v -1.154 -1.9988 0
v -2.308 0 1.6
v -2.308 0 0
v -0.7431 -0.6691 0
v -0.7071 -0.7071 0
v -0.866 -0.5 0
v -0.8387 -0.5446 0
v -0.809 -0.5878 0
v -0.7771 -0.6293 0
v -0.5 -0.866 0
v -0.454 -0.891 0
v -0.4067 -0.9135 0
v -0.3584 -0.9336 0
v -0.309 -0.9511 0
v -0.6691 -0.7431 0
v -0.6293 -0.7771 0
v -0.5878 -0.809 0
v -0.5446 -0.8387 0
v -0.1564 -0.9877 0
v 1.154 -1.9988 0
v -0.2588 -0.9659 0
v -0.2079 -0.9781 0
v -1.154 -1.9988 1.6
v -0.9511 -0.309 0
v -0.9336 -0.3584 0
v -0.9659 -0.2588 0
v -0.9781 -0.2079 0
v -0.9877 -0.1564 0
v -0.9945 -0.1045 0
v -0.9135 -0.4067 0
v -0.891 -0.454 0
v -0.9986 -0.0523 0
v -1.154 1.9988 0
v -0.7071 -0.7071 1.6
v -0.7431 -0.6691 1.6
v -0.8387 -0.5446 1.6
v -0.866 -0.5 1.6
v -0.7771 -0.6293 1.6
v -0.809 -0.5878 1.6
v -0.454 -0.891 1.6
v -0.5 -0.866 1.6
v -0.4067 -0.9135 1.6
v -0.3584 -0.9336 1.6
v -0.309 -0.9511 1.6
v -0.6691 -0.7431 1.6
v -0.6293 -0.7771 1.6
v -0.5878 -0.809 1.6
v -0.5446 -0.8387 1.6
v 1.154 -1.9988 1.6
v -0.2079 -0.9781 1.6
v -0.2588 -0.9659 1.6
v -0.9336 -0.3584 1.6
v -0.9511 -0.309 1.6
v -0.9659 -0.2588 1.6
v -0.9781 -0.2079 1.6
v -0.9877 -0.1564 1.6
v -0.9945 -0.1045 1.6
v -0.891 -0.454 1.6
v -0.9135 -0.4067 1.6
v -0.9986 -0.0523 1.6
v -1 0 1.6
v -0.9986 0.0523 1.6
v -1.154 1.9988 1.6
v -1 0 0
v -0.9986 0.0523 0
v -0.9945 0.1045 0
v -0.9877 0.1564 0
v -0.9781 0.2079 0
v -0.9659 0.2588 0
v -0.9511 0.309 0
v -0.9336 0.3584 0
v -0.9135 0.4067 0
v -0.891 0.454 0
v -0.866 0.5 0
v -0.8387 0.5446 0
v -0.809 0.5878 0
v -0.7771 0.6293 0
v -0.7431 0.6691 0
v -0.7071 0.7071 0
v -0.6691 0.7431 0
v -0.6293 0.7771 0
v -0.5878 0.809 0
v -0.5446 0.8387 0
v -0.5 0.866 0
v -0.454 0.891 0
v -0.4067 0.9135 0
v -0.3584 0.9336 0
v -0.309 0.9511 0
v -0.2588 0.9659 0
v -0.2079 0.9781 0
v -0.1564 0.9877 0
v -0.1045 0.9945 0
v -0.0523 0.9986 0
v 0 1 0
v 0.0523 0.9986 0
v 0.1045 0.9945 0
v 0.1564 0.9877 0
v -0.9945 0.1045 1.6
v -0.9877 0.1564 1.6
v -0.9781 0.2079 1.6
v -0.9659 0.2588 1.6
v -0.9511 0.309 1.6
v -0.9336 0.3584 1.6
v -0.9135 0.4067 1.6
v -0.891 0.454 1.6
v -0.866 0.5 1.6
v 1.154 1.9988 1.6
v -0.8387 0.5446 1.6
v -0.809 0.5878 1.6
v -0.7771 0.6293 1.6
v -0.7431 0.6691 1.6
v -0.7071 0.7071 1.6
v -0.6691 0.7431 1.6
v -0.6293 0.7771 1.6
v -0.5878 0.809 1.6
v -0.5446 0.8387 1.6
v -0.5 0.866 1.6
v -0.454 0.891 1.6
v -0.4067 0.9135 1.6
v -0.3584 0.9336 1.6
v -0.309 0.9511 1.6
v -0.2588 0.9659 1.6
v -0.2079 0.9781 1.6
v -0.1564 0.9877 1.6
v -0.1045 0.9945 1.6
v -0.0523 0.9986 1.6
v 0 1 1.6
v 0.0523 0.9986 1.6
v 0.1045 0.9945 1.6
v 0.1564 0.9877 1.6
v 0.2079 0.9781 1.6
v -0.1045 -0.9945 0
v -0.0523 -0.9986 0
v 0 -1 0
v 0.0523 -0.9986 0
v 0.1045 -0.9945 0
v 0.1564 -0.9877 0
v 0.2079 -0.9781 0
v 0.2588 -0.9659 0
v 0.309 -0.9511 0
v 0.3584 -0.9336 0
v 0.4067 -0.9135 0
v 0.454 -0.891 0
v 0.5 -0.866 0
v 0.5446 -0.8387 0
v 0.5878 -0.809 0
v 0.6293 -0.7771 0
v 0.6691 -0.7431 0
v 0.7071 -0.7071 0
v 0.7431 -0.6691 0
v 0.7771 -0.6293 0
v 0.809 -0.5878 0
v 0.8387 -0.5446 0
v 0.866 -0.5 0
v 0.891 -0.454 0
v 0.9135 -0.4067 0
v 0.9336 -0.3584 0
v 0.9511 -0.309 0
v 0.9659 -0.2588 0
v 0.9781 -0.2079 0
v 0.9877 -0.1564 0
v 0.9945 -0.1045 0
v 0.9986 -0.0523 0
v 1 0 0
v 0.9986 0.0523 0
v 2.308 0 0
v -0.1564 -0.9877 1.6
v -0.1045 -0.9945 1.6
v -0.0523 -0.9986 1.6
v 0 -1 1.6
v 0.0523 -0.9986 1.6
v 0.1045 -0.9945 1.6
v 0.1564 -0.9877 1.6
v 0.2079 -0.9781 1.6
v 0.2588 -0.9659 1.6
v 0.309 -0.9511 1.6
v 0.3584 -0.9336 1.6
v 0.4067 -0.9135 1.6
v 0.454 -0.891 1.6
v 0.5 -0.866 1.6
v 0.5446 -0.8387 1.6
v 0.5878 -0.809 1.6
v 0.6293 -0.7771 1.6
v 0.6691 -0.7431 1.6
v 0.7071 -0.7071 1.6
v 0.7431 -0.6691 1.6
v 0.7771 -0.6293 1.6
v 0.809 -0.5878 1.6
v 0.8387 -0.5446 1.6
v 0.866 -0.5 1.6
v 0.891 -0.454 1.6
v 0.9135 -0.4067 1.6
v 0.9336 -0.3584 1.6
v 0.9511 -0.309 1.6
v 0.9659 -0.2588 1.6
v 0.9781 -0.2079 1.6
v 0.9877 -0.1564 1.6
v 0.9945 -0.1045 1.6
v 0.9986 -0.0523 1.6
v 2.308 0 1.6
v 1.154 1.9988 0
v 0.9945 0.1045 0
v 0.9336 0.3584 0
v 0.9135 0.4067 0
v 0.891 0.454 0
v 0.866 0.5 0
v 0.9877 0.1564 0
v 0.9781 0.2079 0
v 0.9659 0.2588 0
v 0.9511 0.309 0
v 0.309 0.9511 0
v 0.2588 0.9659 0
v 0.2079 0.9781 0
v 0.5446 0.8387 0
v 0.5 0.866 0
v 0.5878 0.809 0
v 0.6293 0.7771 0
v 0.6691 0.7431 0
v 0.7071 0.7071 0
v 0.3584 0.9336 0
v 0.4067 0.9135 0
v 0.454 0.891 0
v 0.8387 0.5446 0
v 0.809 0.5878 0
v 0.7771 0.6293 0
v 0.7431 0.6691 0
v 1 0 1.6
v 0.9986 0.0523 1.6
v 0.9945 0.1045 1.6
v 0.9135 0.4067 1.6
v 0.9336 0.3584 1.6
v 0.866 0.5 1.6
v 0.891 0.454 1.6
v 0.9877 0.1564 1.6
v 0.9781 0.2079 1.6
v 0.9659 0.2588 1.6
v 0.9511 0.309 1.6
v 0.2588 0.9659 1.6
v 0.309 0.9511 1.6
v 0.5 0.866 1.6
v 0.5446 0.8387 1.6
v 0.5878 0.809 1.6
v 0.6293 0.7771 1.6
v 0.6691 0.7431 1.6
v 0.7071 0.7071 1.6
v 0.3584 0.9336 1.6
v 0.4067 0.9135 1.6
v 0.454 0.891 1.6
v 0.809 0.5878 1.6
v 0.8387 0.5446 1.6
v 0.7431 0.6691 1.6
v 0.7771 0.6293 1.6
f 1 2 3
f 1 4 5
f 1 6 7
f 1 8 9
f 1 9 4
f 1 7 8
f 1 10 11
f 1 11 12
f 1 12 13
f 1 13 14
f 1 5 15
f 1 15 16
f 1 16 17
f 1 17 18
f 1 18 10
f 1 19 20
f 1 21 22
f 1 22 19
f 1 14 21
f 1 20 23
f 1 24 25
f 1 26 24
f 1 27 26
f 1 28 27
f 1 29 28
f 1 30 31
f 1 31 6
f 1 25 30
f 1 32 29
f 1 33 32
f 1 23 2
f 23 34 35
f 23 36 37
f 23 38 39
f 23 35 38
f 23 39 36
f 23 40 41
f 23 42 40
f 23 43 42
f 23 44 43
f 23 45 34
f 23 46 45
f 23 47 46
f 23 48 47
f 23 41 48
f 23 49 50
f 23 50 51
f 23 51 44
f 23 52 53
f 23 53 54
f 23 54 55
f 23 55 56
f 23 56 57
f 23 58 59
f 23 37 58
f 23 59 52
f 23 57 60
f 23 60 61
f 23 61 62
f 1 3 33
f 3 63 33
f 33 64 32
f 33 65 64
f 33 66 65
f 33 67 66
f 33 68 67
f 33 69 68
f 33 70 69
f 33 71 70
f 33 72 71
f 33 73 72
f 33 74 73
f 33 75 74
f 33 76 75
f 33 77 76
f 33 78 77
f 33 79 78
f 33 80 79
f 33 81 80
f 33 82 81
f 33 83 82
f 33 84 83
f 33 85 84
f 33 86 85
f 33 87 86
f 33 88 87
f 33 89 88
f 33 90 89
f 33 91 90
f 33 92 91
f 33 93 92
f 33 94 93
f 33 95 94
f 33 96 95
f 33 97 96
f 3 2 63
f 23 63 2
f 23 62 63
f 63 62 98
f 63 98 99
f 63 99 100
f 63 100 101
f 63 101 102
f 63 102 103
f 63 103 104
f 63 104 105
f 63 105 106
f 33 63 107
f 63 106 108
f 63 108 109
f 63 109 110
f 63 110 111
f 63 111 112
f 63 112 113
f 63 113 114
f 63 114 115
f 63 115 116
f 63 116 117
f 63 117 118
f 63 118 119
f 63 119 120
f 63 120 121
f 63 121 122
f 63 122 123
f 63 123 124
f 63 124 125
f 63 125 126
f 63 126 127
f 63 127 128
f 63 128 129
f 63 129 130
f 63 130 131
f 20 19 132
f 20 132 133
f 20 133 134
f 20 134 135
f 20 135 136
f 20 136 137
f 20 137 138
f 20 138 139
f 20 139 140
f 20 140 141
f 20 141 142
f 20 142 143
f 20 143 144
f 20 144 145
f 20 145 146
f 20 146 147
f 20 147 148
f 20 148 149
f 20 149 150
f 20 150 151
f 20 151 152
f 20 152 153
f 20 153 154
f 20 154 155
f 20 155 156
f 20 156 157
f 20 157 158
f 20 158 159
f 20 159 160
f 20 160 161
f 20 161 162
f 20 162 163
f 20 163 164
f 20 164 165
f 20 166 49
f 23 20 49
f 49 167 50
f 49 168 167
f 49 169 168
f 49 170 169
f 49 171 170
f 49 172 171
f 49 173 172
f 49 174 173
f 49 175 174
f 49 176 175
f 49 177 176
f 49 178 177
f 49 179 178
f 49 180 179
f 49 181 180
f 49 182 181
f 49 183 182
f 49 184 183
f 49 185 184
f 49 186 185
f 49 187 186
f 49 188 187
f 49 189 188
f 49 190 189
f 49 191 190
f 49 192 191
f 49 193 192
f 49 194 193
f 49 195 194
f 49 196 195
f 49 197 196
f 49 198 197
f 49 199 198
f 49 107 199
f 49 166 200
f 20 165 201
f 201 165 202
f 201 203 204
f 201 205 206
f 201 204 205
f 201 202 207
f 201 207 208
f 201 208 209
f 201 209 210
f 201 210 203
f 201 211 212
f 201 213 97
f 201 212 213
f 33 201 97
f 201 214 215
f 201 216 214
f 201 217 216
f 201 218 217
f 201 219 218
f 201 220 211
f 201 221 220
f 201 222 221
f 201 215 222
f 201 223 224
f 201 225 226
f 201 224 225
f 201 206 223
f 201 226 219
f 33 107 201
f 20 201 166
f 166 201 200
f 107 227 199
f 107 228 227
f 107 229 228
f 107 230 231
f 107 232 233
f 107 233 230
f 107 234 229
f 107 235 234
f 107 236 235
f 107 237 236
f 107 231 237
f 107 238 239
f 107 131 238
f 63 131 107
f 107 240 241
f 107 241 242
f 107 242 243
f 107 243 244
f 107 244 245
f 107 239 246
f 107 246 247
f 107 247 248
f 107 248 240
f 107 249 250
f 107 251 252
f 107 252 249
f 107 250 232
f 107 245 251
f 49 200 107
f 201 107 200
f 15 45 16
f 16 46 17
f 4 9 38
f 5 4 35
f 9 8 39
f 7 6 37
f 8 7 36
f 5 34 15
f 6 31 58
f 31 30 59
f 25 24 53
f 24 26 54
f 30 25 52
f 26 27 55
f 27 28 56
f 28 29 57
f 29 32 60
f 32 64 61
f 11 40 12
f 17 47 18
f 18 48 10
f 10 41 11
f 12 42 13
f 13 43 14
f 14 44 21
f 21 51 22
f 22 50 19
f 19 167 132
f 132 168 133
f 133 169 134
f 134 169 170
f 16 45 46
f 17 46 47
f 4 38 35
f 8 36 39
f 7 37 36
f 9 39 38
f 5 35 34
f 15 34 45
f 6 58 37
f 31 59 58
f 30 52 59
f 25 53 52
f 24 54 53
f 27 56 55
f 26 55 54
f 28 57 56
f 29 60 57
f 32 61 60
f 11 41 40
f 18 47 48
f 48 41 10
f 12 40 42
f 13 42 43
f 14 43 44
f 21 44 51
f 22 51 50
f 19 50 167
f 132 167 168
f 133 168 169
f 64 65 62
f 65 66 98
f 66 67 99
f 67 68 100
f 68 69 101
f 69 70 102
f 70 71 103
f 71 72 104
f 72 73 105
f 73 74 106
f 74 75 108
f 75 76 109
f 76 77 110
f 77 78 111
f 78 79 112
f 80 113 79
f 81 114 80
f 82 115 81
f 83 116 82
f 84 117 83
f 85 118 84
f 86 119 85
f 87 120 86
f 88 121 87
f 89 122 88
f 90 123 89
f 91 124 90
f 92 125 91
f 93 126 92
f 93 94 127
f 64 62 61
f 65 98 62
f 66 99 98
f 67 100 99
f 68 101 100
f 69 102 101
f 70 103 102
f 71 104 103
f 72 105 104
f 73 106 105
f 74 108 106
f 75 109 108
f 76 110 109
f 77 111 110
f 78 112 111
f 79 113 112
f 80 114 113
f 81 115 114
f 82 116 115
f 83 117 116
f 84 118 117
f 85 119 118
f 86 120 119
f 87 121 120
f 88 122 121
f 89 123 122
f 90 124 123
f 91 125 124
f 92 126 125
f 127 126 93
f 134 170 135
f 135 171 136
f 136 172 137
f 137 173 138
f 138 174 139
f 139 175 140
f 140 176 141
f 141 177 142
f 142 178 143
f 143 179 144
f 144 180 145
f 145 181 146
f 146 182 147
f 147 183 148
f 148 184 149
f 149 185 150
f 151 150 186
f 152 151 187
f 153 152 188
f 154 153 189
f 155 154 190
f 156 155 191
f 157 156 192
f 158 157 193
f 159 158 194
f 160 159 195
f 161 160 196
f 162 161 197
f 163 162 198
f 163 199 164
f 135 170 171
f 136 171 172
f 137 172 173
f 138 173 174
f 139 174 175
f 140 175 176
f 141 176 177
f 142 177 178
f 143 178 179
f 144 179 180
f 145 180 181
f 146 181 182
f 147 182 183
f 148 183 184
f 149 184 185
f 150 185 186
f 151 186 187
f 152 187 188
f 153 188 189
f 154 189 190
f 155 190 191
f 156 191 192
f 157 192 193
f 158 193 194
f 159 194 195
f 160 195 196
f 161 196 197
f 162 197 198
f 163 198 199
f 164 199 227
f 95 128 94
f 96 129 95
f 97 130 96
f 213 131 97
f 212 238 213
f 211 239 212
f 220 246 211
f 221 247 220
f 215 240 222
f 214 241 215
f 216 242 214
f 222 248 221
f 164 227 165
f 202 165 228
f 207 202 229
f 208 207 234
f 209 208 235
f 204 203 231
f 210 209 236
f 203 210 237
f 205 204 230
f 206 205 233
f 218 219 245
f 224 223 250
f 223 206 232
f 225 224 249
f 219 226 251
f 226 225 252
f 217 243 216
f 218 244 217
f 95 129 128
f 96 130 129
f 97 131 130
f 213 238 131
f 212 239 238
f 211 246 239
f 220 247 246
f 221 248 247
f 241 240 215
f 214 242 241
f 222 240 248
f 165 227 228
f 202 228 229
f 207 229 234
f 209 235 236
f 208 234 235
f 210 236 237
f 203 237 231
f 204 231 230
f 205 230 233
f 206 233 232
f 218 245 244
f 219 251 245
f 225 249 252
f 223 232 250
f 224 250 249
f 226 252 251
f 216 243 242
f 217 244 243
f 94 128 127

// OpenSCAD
// file: C:/od/OneDrive/Documents/ChatGPT/oomlout_oobb_part_motor_gearbox_wave_drive_version_5/parts/oobb_part_motor_gearbox_wave_drive_version_5_12_to_1_reduction/compact_helpers.scad
// Reusable native geometry helpers.
function polar(r,a)=[r*cos(a),r*sin(a)];
function rotate_point(p,a)=[p[0]*cos(a)-p[1]*sin(a),p[0]*sin(a)+p[1]*cos(a)];
function profile_point(t)=let(
    s=sqrt(pow(pitch_radius,2)-pow(eccentricity*sin(cavity_count*t),2)),
    r=eccentricity*cos(cavity_count*t)+s,
    xi=atan2(eccentricity*cavity_count*sin(cavity_count*t),s),
    rr=roller_radius+profile_clearance)
    [r*cos(t)+rr*cos(t+xi),r*sin(t)+rr*sin(t+xi)];
function profile_points(upper=false)=[for(i=[0:cavity_count*profile_samples_per_cavity-1])
    rotate_point(profile_point(360*i/(cavity_count*profile_samples_per_cavity)),0)];
function roller_position(i,a,upper=false)=let(
    t=-a/roller_count+360*i/roller_count,
    rel=t-a-(upper?180:0),
    r=eccentricity*cos(rel)+sqrt(pow(pitch_radius,2)-pow(eccentricity*sin(rel),2))) polar(r,t);
module tube(ro,ri,h) { difference() { cylinder(r=ro,h=h); translate([0,0,-eps]) cylinder(r=ri,h=h+2*eps); } }
module screw_hole(size,h) { scale([1,1,h]) { if(size=="m2") oobb_hole_m2(); if(size=="m3") oobb_hole_m3(); if(size=="m6") oobb_hole_m6(); } }
module socket_recess(size,depth) {
    // OOBB socket head starts at the under-head plane and extends outward.
    scale([1,1,depth/(size=="m3"?3.2:2.2)]) {
        if(size=="m3") oobb_socket_m3(); else oobb_socket_m2();
    }
}
module at_mounts(points) { for(p=points) translate([p[0],p[1],0]) children(); }
module shaft_cut(h,fit=shaft_fit_clearance) {
    linear_extrude(h) intersection() {
        circle(r=input_shaft_diameter/2+fit);
        translate([-10,-10]) square([10+input_shaft_diameter/2-input_shaft_flat_depth+fit,20]);
    }
}
module rounded_rectangle_plate(size=[119,119,3],radius=1.5) {
    hull() for(x=[-1,1],y=[-1,1]) translate([x*(size[0]/2-radius),y*(size[1]/2-radius),0]) cylinder(r=radius,h=size[2]);
}
module grid_cuts(h) {
    // Actual OOBB grid centres: six units are centred on half-pitch offsets.
    for(i=[0:base_width-1],j=[0:base_height-1])
        let(x=(i-(base_width-1)/2)*oobb_grid_pitch,y=(j-(base_height-1)/2)*oobb_grid_pitch)
        if(sqrt(x*x+y*y)>housing_radius+3.5)
            translate([x,y,-eps]) screw_hole("m6",h+2*eps);
}
module wave_generator() {
    render(convexity=20) difference() {
        tube(wave_radius,12.6,wave_height);
        translate([0,0,wave_seat_z]) cylinder(r=13.5+bearing_seat_clearance,h=wave_height);
        translate([0,0,wave_height-wave_cap_depth]) cylinder(r=22.15,h=wave_cap_depth+eps);
        at_mounts(wave_mounts) {
            translate([0,0,-eps]) screw_hole("m3",wave_height+2*eps);
            translate([0,0,wave_nut_z]) scale([1,1,(wave_height-wave_cap_depth-wave_nut_z+eps)/2.7]) oobb_nut_m3();
        }
    }
}
module wave_cap() {
    render(convexity=20) difference() {
        tube(22,12.6,wave_cap_depth);
        at_mounts(wave_mounts) {
            translate([0,0,-eps]) screw_hole("m3",wave_cap_depth+2*eps);
            translate([0,0,wave_cap_depth-wave_head_recess]) socket_recess("m3",wave_head_recess+eps);
        }
    }
}
// file: C:/od/OneDrive/Documents/ChatGPT/oomlout_oobb_part_motor_gearbox_wave_drive_version_5/parts/oobb_part_motor_gearbox_wave_drive_version_5_12_to_1_reduction/oobb_hardware.scad
module oobb_rounded_rectangle_edges(size, radius, radius_top, radius_bottom) {
      rt=radius_top; rb=radius_bottom; depth=size[2]; n=16;
      lower=rb==0 ? [[radius,0]] :
        [for(i=[0:n]) let(a=-90+90*i/n) [radius-rb+rb*cos(a),rb+rb*sin(a)]];
      upper=rt==0 ? [[radius,depth]] :
        [for(i=[0:n]) let(a=90*i/n) [radius-rt+rt*cos(a),depth-rt+rt*sin(a)]];
      hull() for(x=[-size[0]/2+radius,size[0]/2-radius])
        for(y=[-size[1]/2+radius,size[1]/2-radius])
          translate([x,y,0]) rotate_extrude()
            polygon(concat([[0,0]],lower,upper,[[0,depth]]));
    }
// Generated from installed OOBB v5. All primitives use overhang=True.

module oobb_motor_plate_body() {


difference() {
	union() {
		translate(v = [0, 0, 0]) {
			rotate(a = [0, 0, 0]) {
				difference() {
					union() {
						oobb_rounded_rectangle_edges(radius = 1.5, radius_bottom = 1.5, radius_top = 1.5, size = [89.0, 89.0, 4.0]);
					}
					union();
				}
			}
		}
	}
	union();
}

}

module oobb_hole_m2() {


difference() {
	union() {
		cylinder(h = 1, r = 1.35);
	}
	union();
}

}

module oobb_hole_m3() {


difference() {
	union() {
		cylinder(h = 1, r = 1.8);
	}
	union();
}

}

module oobb_hole_m6() {


difference() {
	union() {
		cylinder(h = 1, r = 3.25);
	}
	union();
}

}

module oobb_nut_m2() {


difference() {
	union() {
		translate(v = [0, 0, 0]) {
			rotate(a = [0, 0, 0]) {
				difference() {
					union() {
						linear_extrude(height = 2.2) {
							polygon(points = [[2.4234, 0.0], [1.2117000000000002, 2.0987259635312085], [-1.2116999999999996, 2.0987259635312085], [-2.4234, 2.967809053053696e-16], [-1.211700000000001, -2.098725963531208], [1.2116999999999984, -2.0987259635312094]]);
						}
						translate(v = [-1.25, -2.75, -0.3]) {
							cube(size = [2.5, 5.5, 0.3]);
						}
						translate(v = [-1.25, -1.25, -0.6]) {
							cube(size = [2.5, 2.5, 0.3]);
						}
						translate(v = [-1.25, -2.75, 2.2]) {
							cube(size = [2.5, 5.5, 0.3]);
						}
						translate(v = [-1.25, -1.25, 2.5]) {
							cube(size = [2.5, 2.5, 0.3]);
						}
					}
					union();
				}
			}
		}
	}
	union();
}

}

module oobb_socket_m2() {


difference() {
	union() {
		translate(v = [0, 0, 0]) {
			rotate(a = [0, 0, 0]) {
				difference() {
					union() {
						cylinder(h = 2.2, r = 2.1);
						translate(v = [-1.25, -2.75, -0.3]) {
							cube(size = [2.5, 5.5, 0.3]);
						}
						translate(v = [-1.25, -1.25, -0.6]) {
							cube(size = [2.5, 2.5, 0.3]);
						}
					}
					union();
				}
			}
		}
	}
	union();
}

}

module oobb_nut_m3() {


difference() {
	union() {
		translate(v = [0, 0, 0]) {
			rotate(a = [0, 0, 0]) {
				difference() {
					union() {
						linear_extrude(height = 2.7) {
							polygon(points = [[3.4619999999999997, 0.0], [1.7310000000000003, 2.9981799479017264], [-1.7309999999999992, 2.9981799479017264], [-3.4619999999999997, 4.2397272186481365e-16], [-1.7310000000000014, -2.998179947901726], [1.7309999999999977, -2.9981799479017277]]);
						}
						translate(v = [-1.75, -3.25, -0.3]) {
							cube(size = [3.5, 6.5, 0.3]);
						}
						translate(v = [-1.75, -1.75, -0.6]) {
							cube(size = [3.5, 3.5, 0.3]);
						}
						translate(v = [-1.75, -3.25, 2.7]) {
							cube(size = [3.5, 6.5, 0.3]);
						}
						translate(v = [-1.75, -1.75, 3.0]) {
							cube(size = [3.5, 3.5, 0.3]);
						}
					}
					union();
				}
			}
		}
	}
	union();
}

}

module oobb_socket_m3() {


difference() {
	union() {
		translate(v = [0, 0, 0]) {
			rotate(a = [0, 0, 0]) {
				difference() {
					union() {
						cylinder(h = 3.2, r = 3.0);
						translate(v = [-1.75, -3.25, -0.3]) {
							cube(size = [3.5, 6.5, 0.3]);
						}
						translate(v = [-1.75, -1.75, -0.6]) {
							cube(size = [3.5, 3.5, 0.3]);
						}
					}
					union();
				}
			}
		}
	}
	union();
}

}

module oobb_nut_m6() {


difference() {
	union() {
		translate(v = [0, 0, 0]) {
			rotate(a = [0, 0, 0]) {
				difference() {
					union() {
						linear_extrude(height = 5.2) {
							polygon(points = [[5.914249999999999, 0.0], [2.957125, 5.1218907443321156], [-2.9571249999999982, 5.1218907443321156], [-5.914249999999999, 7.242867331857232e-16], [-2.9571250000000022, -5.121890744332115], [2.9571249999999956, -5.121890744332118]]);
						}
						translate(v = [-2.875, -5.0, -0.3]) {
							cube(size = [5.75, 10, 0.3]);
						}
						translate(v = [-2.875, -2.875, -0.6]) {
							cube(size = [5.75, 5.75, 0.3]);
						}
						translate(v = [-2.875, -5.0, 5.2]) {
							cube(size = [5.75, 10, 0.3]);
						}
						translate(v = [-2.875, -2.875, 5.5]) {
							cube(size = [5.75, 5.75, 0.3]);
						}
					}
					union();
				}
			}
		}
	}
	union();
}

}
// file: C:/od/OneDrive/Documents/ChatGPT/oomlout_oobb_part_motor_gearbox_wave_drive_version_5/parts/oobb_part_motor_gearbox_wave_drive_version_5_12_to_1_reduction/parameters.scad
// Generated by working_scad.py. Edit the Python recipe to persist changes.
style = "version_5";
reduction = 12;
bearing_output = "6810";
bearing_wave = "6704";
roller_diameter = 7.0;
roller_bore_diameter = 3.2;
roller_length = 12.0;
roller_material = "nylon";
roller_bank_count = 1;
motor_plate_depth = 4.0;
motor_body_depth = 40.0;
motor_shaft_length = 24.0;
motor_hole_pitch = 31.0;
motor_thread_depth = 6.0;
motor_pilot_diameter = 22.0;
motor_pilot_height = 2.0;
output_holder_wall = 7.0;
max_screw_length = 35.0;
eccentricity = 0.75;
wave_radius = 23.25;
profile_clearance = 0.15;
roller_slot_clearance = 0.3;
roller_end_clearance = 0.3;
cage_wall = 4.0;
cage_plate_depth = 3.0;
bearing_seat_clearance = 0.1;
journal_clearance = 0.05;
bearing_axial_clearance = 0.2;
output_plate_diameter = 65.0;
output_plate_depth = 6.0;
output_grid_pitch = 15.0;
output_face_clearance = 0.3;
output_socket_recess = 4.0;
output_screw_length = 16;
output_nut_depth = 5.2;
output_nut_height = 5.0;
motor_shaft_end_clearance = 0.5;
base_width = 6;
base_height = 6;
oobb_grid_pitch = 15.0;
oobb_size_allowance = 1.0;
base_edge_radius = 1.5;
housing_flange_corner_radius = 1.5;
housing_screw_pitch_radius = 35.5;
housing_screw_count = 6;
input_shaft_diameter = 5.0;
input_shaft_flat_depth = 0.5;
shaft_fit_clearance = 0.1;
cage_screw_count = 4;
profile_samples_per_cavity = 100;
circle_fragments = 120;
overhang = true;
run_scad = true;
run_solidcraft = false;
generate_stl = true;
generate_previews = true;
generate_renders = true;
validate_geometry = true;
package_outputs = true;
render_threads = 8;
variant = "default";
// main file
include <C:/od/OneDrive/Documents/ChatGPT/oomlout_oobb_part_motor_gearbox_wave_drive_version_5/parts/oobb_part_motor_gearbox_wave_drive_version_5_12_to_1_reduction/parameters.scad>
include <C:/od/OneDrive/Documents/ChatGPT/oomlout_oobb_part_motor_gearbox_wave_drive_version_5/parts/oobb_part_motor_gearbox_wave_drive_version_5_12_to_1_reduction/oobb_hardware.scad>
include <C:/od/OneDrive/Documents/ChatGPT/oomlout_oobb_part_motor_gearbox_wave_drive_version_5/parts/oobb_part_motor_gearbox_wave_drive_version_5_12_to_1_reduction/geometry.scad>
difference() { intersection() { difference() {
	union() {
		translate(v = [0, 0, 0]) {
			rotate(a = [0, 0, 0]) {
				difference() {
					union() {
						linear_extrude(height = 1.6) {
							polygon(points = [[2.308, 0.0], [1.1540000000000001, 1.998786631934484], [-1.1539999999999995, 1.9987866319344845], [-2.308, 2.826484812432091e-16], [-1.154000000000001, -1.9987866319344838], [1.1539999999999984, -1.9987866319344851]]);
						}
					}
					union();
				}
			}
		}
	}
	union();
}
 translate([-5,-5,0]) cube([10,10,1.6]); } translate([0,0,-0.01]) cylinder(r=1,h=1.62); }
